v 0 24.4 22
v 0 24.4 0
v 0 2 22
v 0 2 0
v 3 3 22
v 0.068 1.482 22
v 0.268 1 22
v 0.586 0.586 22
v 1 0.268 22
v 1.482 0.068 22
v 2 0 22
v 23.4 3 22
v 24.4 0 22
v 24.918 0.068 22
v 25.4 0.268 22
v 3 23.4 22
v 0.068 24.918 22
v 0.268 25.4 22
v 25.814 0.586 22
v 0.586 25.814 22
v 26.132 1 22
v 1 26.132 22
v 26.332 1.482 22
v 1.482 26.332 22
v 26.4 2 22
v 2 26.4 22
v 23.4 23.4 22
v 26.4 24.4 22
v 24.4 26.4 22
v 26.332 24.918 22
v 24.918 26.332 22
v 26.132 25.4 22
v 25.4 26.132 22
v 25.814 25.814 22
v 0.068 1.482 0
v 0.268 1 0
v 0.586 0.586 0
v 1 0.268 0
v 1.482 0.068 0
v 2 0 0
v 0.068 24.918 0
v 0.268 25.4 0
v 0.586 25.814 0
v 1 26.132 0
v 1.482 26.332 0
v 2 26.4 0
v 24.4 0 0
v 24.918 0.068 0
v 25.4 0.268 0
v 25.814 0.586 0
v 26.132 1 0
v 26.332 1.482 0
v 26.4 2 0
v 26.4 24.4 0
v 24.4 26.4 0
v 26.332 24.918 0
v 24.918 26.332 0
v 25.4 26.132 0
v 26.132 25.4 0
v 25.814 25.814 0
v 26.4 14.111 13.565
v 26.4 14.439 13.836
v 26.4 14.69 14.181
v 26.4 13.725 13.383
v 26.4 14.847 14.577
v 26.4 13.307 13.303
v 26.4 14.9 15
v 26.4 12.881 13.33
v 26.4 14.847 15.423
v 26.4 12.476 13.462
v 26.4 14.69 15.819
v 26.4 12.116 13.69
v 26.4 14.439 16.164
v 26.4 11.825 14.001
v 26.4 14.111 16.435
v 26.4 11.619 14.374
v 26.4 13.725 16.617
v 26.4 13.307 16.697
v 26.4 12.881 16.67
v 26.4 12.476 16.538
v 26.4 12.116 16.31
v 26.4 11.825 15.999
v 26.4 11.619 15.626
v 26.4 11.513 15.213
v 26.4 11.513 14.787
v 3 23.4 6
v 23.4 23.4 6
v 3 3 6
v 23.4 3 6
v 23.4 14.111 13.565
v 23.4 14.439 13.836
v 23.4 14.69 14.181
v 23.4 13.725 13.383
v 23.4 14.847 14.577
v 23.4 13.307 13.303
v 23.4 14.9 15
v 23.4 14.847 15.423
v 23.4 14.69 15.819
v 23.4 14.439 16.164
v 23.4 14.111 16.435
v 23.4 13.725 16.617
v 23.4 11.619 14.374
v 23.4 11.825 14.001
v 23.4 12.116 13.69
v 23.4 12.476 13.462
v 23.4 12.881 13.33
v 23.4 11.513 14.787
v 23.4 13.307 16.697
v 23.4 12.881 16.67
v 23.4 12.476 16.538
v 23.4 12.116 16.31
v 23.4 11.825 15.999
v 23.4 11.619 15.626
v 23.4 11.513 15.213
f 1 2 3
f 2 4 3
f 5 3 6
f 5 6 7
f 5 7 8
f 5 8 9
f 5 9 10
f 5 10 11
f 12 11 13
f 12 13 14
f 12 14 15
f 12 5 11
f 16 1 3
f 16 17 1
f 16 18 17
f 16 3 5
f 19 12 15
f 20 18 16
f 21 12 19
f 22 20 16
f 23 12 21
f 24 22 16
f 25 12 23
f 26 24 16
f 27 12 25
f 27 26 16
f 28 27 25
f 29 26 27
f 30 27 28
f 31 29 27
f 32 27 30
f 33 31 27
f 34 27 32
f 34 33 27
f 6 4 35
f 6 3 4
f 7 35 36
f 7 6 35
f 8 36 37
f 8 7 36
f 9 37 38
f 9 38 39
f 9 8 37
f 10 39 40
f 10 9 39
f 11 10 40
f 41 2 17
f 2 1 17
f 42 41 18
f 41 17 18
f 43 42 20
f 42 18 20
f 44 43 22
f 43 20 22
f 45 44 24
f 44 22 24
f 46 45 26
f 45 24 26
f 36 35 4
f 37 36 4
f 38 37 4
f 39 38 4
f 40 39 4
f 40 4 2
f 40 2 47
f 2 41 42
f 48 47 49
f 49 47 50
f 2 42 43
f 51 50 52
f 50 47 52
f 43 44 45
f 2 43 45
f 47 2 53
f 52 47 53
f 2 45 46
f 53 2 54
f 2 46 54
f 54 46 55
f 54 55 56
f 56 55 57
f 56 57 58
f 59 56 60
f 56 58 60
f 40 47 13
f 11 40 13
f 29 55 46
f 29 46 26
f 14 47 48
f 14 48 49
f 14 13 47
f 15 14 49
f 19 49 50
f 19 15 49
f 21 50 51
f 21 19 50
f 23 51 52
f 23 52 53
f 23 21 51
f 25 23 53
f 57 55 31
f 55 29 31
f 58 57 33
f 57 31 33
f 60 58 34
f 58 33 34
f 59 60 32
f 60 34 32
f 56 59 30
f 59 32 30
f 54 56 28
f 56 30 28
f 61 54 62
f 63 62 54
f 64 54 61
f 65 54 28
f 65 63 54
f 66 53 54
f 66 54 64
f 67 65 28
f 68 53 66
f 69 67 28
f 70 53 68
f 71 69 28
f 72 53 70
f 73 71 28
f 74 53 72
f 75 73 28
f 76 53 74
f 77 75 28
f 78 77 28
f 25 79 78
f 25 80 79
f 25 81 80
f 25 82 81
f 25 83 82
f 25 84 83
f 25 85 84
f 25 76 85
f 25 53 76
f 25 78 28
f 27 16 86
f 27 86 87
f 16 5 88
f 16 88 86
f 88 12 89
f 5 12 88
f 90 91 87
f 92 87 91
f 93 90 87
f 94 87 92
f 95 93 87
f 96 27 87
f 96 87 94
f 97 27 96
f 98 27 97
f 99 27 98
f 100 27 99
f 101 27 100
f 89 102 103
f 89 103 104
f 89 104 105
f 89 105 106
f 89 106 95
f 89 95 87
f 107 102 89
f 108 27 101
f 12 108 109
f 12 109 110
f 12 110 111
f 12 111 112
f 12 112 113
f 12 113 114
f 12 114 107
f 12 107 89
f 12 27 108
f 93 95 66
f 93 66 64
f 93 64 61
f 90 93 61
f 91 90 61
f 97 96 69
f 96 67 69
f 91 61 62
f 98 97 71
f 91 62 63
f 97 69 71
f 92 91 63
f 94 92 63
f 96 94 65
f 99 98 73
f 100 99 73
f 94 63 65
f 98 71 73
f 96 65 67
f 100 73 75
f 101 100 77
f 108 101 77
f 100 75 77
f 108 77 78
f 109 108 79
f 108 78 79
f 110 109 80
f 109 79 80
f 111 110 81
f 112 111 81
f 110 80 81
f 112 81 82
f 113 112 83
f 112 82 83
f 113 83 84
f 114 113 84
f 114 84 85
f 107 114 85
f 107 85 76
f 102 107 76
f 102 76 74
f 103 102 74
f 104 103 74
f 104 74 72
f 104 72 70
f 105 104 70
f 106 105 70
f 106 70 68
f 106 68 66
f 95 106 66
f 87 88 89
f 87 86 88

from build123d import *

# Parameters (mm, degrees)
BOX_W           = 26.4
BOX_H           = 26.4
BOX_DEPTH       = 22
SKETCH_W        = 20.4
SKETCH_H        = 20.4
POCKET_DEPTH    = 16
FILLET_R        = 2
SKETCH001_R     = 1.7
POCKET001_DEPTH = 5


with BuildPart() as part:
    # Box → Box (new body)
    with BuildSketch(Plane.XY):
        with Locations((13.2, 13.2)):
            Rectangle(BOX_W, BOX_H)
    extrude(amount=BOX_DEPTH)

    # Sketch → Pocket (cut)
    with BuildSketch(Plane.XY.offset(22)):
        with Locations((13.2, 13.2)):
            Rectangle(SKETCH_W, SKETCH_H)
    extrude(amount=-POCKET_DEPTH, mode=Mode.SUBTRACT)

    # Fillet
    fillet_edges = [part.edges().sort_by_distance(p)[0] for p in [
        (0, 26.4, 11),
        (26.4, 26.4, 11),
        (26.4, 0, 11),
        (0, 0, 11),
    ]]
    fillet(fillet_edges, radius=FILLET_R)

    # Sketch001 → Pocket001 (cut)
    with BuildSketch(Plane.YZ.offset(26.4)):
        with Locations((13.2, 15)):
            Circle(SKETCH001_R)
    extrude(amount=-POCKET001_DEPTH, mode=Mode.SUBTRACT)


solid = part.part
